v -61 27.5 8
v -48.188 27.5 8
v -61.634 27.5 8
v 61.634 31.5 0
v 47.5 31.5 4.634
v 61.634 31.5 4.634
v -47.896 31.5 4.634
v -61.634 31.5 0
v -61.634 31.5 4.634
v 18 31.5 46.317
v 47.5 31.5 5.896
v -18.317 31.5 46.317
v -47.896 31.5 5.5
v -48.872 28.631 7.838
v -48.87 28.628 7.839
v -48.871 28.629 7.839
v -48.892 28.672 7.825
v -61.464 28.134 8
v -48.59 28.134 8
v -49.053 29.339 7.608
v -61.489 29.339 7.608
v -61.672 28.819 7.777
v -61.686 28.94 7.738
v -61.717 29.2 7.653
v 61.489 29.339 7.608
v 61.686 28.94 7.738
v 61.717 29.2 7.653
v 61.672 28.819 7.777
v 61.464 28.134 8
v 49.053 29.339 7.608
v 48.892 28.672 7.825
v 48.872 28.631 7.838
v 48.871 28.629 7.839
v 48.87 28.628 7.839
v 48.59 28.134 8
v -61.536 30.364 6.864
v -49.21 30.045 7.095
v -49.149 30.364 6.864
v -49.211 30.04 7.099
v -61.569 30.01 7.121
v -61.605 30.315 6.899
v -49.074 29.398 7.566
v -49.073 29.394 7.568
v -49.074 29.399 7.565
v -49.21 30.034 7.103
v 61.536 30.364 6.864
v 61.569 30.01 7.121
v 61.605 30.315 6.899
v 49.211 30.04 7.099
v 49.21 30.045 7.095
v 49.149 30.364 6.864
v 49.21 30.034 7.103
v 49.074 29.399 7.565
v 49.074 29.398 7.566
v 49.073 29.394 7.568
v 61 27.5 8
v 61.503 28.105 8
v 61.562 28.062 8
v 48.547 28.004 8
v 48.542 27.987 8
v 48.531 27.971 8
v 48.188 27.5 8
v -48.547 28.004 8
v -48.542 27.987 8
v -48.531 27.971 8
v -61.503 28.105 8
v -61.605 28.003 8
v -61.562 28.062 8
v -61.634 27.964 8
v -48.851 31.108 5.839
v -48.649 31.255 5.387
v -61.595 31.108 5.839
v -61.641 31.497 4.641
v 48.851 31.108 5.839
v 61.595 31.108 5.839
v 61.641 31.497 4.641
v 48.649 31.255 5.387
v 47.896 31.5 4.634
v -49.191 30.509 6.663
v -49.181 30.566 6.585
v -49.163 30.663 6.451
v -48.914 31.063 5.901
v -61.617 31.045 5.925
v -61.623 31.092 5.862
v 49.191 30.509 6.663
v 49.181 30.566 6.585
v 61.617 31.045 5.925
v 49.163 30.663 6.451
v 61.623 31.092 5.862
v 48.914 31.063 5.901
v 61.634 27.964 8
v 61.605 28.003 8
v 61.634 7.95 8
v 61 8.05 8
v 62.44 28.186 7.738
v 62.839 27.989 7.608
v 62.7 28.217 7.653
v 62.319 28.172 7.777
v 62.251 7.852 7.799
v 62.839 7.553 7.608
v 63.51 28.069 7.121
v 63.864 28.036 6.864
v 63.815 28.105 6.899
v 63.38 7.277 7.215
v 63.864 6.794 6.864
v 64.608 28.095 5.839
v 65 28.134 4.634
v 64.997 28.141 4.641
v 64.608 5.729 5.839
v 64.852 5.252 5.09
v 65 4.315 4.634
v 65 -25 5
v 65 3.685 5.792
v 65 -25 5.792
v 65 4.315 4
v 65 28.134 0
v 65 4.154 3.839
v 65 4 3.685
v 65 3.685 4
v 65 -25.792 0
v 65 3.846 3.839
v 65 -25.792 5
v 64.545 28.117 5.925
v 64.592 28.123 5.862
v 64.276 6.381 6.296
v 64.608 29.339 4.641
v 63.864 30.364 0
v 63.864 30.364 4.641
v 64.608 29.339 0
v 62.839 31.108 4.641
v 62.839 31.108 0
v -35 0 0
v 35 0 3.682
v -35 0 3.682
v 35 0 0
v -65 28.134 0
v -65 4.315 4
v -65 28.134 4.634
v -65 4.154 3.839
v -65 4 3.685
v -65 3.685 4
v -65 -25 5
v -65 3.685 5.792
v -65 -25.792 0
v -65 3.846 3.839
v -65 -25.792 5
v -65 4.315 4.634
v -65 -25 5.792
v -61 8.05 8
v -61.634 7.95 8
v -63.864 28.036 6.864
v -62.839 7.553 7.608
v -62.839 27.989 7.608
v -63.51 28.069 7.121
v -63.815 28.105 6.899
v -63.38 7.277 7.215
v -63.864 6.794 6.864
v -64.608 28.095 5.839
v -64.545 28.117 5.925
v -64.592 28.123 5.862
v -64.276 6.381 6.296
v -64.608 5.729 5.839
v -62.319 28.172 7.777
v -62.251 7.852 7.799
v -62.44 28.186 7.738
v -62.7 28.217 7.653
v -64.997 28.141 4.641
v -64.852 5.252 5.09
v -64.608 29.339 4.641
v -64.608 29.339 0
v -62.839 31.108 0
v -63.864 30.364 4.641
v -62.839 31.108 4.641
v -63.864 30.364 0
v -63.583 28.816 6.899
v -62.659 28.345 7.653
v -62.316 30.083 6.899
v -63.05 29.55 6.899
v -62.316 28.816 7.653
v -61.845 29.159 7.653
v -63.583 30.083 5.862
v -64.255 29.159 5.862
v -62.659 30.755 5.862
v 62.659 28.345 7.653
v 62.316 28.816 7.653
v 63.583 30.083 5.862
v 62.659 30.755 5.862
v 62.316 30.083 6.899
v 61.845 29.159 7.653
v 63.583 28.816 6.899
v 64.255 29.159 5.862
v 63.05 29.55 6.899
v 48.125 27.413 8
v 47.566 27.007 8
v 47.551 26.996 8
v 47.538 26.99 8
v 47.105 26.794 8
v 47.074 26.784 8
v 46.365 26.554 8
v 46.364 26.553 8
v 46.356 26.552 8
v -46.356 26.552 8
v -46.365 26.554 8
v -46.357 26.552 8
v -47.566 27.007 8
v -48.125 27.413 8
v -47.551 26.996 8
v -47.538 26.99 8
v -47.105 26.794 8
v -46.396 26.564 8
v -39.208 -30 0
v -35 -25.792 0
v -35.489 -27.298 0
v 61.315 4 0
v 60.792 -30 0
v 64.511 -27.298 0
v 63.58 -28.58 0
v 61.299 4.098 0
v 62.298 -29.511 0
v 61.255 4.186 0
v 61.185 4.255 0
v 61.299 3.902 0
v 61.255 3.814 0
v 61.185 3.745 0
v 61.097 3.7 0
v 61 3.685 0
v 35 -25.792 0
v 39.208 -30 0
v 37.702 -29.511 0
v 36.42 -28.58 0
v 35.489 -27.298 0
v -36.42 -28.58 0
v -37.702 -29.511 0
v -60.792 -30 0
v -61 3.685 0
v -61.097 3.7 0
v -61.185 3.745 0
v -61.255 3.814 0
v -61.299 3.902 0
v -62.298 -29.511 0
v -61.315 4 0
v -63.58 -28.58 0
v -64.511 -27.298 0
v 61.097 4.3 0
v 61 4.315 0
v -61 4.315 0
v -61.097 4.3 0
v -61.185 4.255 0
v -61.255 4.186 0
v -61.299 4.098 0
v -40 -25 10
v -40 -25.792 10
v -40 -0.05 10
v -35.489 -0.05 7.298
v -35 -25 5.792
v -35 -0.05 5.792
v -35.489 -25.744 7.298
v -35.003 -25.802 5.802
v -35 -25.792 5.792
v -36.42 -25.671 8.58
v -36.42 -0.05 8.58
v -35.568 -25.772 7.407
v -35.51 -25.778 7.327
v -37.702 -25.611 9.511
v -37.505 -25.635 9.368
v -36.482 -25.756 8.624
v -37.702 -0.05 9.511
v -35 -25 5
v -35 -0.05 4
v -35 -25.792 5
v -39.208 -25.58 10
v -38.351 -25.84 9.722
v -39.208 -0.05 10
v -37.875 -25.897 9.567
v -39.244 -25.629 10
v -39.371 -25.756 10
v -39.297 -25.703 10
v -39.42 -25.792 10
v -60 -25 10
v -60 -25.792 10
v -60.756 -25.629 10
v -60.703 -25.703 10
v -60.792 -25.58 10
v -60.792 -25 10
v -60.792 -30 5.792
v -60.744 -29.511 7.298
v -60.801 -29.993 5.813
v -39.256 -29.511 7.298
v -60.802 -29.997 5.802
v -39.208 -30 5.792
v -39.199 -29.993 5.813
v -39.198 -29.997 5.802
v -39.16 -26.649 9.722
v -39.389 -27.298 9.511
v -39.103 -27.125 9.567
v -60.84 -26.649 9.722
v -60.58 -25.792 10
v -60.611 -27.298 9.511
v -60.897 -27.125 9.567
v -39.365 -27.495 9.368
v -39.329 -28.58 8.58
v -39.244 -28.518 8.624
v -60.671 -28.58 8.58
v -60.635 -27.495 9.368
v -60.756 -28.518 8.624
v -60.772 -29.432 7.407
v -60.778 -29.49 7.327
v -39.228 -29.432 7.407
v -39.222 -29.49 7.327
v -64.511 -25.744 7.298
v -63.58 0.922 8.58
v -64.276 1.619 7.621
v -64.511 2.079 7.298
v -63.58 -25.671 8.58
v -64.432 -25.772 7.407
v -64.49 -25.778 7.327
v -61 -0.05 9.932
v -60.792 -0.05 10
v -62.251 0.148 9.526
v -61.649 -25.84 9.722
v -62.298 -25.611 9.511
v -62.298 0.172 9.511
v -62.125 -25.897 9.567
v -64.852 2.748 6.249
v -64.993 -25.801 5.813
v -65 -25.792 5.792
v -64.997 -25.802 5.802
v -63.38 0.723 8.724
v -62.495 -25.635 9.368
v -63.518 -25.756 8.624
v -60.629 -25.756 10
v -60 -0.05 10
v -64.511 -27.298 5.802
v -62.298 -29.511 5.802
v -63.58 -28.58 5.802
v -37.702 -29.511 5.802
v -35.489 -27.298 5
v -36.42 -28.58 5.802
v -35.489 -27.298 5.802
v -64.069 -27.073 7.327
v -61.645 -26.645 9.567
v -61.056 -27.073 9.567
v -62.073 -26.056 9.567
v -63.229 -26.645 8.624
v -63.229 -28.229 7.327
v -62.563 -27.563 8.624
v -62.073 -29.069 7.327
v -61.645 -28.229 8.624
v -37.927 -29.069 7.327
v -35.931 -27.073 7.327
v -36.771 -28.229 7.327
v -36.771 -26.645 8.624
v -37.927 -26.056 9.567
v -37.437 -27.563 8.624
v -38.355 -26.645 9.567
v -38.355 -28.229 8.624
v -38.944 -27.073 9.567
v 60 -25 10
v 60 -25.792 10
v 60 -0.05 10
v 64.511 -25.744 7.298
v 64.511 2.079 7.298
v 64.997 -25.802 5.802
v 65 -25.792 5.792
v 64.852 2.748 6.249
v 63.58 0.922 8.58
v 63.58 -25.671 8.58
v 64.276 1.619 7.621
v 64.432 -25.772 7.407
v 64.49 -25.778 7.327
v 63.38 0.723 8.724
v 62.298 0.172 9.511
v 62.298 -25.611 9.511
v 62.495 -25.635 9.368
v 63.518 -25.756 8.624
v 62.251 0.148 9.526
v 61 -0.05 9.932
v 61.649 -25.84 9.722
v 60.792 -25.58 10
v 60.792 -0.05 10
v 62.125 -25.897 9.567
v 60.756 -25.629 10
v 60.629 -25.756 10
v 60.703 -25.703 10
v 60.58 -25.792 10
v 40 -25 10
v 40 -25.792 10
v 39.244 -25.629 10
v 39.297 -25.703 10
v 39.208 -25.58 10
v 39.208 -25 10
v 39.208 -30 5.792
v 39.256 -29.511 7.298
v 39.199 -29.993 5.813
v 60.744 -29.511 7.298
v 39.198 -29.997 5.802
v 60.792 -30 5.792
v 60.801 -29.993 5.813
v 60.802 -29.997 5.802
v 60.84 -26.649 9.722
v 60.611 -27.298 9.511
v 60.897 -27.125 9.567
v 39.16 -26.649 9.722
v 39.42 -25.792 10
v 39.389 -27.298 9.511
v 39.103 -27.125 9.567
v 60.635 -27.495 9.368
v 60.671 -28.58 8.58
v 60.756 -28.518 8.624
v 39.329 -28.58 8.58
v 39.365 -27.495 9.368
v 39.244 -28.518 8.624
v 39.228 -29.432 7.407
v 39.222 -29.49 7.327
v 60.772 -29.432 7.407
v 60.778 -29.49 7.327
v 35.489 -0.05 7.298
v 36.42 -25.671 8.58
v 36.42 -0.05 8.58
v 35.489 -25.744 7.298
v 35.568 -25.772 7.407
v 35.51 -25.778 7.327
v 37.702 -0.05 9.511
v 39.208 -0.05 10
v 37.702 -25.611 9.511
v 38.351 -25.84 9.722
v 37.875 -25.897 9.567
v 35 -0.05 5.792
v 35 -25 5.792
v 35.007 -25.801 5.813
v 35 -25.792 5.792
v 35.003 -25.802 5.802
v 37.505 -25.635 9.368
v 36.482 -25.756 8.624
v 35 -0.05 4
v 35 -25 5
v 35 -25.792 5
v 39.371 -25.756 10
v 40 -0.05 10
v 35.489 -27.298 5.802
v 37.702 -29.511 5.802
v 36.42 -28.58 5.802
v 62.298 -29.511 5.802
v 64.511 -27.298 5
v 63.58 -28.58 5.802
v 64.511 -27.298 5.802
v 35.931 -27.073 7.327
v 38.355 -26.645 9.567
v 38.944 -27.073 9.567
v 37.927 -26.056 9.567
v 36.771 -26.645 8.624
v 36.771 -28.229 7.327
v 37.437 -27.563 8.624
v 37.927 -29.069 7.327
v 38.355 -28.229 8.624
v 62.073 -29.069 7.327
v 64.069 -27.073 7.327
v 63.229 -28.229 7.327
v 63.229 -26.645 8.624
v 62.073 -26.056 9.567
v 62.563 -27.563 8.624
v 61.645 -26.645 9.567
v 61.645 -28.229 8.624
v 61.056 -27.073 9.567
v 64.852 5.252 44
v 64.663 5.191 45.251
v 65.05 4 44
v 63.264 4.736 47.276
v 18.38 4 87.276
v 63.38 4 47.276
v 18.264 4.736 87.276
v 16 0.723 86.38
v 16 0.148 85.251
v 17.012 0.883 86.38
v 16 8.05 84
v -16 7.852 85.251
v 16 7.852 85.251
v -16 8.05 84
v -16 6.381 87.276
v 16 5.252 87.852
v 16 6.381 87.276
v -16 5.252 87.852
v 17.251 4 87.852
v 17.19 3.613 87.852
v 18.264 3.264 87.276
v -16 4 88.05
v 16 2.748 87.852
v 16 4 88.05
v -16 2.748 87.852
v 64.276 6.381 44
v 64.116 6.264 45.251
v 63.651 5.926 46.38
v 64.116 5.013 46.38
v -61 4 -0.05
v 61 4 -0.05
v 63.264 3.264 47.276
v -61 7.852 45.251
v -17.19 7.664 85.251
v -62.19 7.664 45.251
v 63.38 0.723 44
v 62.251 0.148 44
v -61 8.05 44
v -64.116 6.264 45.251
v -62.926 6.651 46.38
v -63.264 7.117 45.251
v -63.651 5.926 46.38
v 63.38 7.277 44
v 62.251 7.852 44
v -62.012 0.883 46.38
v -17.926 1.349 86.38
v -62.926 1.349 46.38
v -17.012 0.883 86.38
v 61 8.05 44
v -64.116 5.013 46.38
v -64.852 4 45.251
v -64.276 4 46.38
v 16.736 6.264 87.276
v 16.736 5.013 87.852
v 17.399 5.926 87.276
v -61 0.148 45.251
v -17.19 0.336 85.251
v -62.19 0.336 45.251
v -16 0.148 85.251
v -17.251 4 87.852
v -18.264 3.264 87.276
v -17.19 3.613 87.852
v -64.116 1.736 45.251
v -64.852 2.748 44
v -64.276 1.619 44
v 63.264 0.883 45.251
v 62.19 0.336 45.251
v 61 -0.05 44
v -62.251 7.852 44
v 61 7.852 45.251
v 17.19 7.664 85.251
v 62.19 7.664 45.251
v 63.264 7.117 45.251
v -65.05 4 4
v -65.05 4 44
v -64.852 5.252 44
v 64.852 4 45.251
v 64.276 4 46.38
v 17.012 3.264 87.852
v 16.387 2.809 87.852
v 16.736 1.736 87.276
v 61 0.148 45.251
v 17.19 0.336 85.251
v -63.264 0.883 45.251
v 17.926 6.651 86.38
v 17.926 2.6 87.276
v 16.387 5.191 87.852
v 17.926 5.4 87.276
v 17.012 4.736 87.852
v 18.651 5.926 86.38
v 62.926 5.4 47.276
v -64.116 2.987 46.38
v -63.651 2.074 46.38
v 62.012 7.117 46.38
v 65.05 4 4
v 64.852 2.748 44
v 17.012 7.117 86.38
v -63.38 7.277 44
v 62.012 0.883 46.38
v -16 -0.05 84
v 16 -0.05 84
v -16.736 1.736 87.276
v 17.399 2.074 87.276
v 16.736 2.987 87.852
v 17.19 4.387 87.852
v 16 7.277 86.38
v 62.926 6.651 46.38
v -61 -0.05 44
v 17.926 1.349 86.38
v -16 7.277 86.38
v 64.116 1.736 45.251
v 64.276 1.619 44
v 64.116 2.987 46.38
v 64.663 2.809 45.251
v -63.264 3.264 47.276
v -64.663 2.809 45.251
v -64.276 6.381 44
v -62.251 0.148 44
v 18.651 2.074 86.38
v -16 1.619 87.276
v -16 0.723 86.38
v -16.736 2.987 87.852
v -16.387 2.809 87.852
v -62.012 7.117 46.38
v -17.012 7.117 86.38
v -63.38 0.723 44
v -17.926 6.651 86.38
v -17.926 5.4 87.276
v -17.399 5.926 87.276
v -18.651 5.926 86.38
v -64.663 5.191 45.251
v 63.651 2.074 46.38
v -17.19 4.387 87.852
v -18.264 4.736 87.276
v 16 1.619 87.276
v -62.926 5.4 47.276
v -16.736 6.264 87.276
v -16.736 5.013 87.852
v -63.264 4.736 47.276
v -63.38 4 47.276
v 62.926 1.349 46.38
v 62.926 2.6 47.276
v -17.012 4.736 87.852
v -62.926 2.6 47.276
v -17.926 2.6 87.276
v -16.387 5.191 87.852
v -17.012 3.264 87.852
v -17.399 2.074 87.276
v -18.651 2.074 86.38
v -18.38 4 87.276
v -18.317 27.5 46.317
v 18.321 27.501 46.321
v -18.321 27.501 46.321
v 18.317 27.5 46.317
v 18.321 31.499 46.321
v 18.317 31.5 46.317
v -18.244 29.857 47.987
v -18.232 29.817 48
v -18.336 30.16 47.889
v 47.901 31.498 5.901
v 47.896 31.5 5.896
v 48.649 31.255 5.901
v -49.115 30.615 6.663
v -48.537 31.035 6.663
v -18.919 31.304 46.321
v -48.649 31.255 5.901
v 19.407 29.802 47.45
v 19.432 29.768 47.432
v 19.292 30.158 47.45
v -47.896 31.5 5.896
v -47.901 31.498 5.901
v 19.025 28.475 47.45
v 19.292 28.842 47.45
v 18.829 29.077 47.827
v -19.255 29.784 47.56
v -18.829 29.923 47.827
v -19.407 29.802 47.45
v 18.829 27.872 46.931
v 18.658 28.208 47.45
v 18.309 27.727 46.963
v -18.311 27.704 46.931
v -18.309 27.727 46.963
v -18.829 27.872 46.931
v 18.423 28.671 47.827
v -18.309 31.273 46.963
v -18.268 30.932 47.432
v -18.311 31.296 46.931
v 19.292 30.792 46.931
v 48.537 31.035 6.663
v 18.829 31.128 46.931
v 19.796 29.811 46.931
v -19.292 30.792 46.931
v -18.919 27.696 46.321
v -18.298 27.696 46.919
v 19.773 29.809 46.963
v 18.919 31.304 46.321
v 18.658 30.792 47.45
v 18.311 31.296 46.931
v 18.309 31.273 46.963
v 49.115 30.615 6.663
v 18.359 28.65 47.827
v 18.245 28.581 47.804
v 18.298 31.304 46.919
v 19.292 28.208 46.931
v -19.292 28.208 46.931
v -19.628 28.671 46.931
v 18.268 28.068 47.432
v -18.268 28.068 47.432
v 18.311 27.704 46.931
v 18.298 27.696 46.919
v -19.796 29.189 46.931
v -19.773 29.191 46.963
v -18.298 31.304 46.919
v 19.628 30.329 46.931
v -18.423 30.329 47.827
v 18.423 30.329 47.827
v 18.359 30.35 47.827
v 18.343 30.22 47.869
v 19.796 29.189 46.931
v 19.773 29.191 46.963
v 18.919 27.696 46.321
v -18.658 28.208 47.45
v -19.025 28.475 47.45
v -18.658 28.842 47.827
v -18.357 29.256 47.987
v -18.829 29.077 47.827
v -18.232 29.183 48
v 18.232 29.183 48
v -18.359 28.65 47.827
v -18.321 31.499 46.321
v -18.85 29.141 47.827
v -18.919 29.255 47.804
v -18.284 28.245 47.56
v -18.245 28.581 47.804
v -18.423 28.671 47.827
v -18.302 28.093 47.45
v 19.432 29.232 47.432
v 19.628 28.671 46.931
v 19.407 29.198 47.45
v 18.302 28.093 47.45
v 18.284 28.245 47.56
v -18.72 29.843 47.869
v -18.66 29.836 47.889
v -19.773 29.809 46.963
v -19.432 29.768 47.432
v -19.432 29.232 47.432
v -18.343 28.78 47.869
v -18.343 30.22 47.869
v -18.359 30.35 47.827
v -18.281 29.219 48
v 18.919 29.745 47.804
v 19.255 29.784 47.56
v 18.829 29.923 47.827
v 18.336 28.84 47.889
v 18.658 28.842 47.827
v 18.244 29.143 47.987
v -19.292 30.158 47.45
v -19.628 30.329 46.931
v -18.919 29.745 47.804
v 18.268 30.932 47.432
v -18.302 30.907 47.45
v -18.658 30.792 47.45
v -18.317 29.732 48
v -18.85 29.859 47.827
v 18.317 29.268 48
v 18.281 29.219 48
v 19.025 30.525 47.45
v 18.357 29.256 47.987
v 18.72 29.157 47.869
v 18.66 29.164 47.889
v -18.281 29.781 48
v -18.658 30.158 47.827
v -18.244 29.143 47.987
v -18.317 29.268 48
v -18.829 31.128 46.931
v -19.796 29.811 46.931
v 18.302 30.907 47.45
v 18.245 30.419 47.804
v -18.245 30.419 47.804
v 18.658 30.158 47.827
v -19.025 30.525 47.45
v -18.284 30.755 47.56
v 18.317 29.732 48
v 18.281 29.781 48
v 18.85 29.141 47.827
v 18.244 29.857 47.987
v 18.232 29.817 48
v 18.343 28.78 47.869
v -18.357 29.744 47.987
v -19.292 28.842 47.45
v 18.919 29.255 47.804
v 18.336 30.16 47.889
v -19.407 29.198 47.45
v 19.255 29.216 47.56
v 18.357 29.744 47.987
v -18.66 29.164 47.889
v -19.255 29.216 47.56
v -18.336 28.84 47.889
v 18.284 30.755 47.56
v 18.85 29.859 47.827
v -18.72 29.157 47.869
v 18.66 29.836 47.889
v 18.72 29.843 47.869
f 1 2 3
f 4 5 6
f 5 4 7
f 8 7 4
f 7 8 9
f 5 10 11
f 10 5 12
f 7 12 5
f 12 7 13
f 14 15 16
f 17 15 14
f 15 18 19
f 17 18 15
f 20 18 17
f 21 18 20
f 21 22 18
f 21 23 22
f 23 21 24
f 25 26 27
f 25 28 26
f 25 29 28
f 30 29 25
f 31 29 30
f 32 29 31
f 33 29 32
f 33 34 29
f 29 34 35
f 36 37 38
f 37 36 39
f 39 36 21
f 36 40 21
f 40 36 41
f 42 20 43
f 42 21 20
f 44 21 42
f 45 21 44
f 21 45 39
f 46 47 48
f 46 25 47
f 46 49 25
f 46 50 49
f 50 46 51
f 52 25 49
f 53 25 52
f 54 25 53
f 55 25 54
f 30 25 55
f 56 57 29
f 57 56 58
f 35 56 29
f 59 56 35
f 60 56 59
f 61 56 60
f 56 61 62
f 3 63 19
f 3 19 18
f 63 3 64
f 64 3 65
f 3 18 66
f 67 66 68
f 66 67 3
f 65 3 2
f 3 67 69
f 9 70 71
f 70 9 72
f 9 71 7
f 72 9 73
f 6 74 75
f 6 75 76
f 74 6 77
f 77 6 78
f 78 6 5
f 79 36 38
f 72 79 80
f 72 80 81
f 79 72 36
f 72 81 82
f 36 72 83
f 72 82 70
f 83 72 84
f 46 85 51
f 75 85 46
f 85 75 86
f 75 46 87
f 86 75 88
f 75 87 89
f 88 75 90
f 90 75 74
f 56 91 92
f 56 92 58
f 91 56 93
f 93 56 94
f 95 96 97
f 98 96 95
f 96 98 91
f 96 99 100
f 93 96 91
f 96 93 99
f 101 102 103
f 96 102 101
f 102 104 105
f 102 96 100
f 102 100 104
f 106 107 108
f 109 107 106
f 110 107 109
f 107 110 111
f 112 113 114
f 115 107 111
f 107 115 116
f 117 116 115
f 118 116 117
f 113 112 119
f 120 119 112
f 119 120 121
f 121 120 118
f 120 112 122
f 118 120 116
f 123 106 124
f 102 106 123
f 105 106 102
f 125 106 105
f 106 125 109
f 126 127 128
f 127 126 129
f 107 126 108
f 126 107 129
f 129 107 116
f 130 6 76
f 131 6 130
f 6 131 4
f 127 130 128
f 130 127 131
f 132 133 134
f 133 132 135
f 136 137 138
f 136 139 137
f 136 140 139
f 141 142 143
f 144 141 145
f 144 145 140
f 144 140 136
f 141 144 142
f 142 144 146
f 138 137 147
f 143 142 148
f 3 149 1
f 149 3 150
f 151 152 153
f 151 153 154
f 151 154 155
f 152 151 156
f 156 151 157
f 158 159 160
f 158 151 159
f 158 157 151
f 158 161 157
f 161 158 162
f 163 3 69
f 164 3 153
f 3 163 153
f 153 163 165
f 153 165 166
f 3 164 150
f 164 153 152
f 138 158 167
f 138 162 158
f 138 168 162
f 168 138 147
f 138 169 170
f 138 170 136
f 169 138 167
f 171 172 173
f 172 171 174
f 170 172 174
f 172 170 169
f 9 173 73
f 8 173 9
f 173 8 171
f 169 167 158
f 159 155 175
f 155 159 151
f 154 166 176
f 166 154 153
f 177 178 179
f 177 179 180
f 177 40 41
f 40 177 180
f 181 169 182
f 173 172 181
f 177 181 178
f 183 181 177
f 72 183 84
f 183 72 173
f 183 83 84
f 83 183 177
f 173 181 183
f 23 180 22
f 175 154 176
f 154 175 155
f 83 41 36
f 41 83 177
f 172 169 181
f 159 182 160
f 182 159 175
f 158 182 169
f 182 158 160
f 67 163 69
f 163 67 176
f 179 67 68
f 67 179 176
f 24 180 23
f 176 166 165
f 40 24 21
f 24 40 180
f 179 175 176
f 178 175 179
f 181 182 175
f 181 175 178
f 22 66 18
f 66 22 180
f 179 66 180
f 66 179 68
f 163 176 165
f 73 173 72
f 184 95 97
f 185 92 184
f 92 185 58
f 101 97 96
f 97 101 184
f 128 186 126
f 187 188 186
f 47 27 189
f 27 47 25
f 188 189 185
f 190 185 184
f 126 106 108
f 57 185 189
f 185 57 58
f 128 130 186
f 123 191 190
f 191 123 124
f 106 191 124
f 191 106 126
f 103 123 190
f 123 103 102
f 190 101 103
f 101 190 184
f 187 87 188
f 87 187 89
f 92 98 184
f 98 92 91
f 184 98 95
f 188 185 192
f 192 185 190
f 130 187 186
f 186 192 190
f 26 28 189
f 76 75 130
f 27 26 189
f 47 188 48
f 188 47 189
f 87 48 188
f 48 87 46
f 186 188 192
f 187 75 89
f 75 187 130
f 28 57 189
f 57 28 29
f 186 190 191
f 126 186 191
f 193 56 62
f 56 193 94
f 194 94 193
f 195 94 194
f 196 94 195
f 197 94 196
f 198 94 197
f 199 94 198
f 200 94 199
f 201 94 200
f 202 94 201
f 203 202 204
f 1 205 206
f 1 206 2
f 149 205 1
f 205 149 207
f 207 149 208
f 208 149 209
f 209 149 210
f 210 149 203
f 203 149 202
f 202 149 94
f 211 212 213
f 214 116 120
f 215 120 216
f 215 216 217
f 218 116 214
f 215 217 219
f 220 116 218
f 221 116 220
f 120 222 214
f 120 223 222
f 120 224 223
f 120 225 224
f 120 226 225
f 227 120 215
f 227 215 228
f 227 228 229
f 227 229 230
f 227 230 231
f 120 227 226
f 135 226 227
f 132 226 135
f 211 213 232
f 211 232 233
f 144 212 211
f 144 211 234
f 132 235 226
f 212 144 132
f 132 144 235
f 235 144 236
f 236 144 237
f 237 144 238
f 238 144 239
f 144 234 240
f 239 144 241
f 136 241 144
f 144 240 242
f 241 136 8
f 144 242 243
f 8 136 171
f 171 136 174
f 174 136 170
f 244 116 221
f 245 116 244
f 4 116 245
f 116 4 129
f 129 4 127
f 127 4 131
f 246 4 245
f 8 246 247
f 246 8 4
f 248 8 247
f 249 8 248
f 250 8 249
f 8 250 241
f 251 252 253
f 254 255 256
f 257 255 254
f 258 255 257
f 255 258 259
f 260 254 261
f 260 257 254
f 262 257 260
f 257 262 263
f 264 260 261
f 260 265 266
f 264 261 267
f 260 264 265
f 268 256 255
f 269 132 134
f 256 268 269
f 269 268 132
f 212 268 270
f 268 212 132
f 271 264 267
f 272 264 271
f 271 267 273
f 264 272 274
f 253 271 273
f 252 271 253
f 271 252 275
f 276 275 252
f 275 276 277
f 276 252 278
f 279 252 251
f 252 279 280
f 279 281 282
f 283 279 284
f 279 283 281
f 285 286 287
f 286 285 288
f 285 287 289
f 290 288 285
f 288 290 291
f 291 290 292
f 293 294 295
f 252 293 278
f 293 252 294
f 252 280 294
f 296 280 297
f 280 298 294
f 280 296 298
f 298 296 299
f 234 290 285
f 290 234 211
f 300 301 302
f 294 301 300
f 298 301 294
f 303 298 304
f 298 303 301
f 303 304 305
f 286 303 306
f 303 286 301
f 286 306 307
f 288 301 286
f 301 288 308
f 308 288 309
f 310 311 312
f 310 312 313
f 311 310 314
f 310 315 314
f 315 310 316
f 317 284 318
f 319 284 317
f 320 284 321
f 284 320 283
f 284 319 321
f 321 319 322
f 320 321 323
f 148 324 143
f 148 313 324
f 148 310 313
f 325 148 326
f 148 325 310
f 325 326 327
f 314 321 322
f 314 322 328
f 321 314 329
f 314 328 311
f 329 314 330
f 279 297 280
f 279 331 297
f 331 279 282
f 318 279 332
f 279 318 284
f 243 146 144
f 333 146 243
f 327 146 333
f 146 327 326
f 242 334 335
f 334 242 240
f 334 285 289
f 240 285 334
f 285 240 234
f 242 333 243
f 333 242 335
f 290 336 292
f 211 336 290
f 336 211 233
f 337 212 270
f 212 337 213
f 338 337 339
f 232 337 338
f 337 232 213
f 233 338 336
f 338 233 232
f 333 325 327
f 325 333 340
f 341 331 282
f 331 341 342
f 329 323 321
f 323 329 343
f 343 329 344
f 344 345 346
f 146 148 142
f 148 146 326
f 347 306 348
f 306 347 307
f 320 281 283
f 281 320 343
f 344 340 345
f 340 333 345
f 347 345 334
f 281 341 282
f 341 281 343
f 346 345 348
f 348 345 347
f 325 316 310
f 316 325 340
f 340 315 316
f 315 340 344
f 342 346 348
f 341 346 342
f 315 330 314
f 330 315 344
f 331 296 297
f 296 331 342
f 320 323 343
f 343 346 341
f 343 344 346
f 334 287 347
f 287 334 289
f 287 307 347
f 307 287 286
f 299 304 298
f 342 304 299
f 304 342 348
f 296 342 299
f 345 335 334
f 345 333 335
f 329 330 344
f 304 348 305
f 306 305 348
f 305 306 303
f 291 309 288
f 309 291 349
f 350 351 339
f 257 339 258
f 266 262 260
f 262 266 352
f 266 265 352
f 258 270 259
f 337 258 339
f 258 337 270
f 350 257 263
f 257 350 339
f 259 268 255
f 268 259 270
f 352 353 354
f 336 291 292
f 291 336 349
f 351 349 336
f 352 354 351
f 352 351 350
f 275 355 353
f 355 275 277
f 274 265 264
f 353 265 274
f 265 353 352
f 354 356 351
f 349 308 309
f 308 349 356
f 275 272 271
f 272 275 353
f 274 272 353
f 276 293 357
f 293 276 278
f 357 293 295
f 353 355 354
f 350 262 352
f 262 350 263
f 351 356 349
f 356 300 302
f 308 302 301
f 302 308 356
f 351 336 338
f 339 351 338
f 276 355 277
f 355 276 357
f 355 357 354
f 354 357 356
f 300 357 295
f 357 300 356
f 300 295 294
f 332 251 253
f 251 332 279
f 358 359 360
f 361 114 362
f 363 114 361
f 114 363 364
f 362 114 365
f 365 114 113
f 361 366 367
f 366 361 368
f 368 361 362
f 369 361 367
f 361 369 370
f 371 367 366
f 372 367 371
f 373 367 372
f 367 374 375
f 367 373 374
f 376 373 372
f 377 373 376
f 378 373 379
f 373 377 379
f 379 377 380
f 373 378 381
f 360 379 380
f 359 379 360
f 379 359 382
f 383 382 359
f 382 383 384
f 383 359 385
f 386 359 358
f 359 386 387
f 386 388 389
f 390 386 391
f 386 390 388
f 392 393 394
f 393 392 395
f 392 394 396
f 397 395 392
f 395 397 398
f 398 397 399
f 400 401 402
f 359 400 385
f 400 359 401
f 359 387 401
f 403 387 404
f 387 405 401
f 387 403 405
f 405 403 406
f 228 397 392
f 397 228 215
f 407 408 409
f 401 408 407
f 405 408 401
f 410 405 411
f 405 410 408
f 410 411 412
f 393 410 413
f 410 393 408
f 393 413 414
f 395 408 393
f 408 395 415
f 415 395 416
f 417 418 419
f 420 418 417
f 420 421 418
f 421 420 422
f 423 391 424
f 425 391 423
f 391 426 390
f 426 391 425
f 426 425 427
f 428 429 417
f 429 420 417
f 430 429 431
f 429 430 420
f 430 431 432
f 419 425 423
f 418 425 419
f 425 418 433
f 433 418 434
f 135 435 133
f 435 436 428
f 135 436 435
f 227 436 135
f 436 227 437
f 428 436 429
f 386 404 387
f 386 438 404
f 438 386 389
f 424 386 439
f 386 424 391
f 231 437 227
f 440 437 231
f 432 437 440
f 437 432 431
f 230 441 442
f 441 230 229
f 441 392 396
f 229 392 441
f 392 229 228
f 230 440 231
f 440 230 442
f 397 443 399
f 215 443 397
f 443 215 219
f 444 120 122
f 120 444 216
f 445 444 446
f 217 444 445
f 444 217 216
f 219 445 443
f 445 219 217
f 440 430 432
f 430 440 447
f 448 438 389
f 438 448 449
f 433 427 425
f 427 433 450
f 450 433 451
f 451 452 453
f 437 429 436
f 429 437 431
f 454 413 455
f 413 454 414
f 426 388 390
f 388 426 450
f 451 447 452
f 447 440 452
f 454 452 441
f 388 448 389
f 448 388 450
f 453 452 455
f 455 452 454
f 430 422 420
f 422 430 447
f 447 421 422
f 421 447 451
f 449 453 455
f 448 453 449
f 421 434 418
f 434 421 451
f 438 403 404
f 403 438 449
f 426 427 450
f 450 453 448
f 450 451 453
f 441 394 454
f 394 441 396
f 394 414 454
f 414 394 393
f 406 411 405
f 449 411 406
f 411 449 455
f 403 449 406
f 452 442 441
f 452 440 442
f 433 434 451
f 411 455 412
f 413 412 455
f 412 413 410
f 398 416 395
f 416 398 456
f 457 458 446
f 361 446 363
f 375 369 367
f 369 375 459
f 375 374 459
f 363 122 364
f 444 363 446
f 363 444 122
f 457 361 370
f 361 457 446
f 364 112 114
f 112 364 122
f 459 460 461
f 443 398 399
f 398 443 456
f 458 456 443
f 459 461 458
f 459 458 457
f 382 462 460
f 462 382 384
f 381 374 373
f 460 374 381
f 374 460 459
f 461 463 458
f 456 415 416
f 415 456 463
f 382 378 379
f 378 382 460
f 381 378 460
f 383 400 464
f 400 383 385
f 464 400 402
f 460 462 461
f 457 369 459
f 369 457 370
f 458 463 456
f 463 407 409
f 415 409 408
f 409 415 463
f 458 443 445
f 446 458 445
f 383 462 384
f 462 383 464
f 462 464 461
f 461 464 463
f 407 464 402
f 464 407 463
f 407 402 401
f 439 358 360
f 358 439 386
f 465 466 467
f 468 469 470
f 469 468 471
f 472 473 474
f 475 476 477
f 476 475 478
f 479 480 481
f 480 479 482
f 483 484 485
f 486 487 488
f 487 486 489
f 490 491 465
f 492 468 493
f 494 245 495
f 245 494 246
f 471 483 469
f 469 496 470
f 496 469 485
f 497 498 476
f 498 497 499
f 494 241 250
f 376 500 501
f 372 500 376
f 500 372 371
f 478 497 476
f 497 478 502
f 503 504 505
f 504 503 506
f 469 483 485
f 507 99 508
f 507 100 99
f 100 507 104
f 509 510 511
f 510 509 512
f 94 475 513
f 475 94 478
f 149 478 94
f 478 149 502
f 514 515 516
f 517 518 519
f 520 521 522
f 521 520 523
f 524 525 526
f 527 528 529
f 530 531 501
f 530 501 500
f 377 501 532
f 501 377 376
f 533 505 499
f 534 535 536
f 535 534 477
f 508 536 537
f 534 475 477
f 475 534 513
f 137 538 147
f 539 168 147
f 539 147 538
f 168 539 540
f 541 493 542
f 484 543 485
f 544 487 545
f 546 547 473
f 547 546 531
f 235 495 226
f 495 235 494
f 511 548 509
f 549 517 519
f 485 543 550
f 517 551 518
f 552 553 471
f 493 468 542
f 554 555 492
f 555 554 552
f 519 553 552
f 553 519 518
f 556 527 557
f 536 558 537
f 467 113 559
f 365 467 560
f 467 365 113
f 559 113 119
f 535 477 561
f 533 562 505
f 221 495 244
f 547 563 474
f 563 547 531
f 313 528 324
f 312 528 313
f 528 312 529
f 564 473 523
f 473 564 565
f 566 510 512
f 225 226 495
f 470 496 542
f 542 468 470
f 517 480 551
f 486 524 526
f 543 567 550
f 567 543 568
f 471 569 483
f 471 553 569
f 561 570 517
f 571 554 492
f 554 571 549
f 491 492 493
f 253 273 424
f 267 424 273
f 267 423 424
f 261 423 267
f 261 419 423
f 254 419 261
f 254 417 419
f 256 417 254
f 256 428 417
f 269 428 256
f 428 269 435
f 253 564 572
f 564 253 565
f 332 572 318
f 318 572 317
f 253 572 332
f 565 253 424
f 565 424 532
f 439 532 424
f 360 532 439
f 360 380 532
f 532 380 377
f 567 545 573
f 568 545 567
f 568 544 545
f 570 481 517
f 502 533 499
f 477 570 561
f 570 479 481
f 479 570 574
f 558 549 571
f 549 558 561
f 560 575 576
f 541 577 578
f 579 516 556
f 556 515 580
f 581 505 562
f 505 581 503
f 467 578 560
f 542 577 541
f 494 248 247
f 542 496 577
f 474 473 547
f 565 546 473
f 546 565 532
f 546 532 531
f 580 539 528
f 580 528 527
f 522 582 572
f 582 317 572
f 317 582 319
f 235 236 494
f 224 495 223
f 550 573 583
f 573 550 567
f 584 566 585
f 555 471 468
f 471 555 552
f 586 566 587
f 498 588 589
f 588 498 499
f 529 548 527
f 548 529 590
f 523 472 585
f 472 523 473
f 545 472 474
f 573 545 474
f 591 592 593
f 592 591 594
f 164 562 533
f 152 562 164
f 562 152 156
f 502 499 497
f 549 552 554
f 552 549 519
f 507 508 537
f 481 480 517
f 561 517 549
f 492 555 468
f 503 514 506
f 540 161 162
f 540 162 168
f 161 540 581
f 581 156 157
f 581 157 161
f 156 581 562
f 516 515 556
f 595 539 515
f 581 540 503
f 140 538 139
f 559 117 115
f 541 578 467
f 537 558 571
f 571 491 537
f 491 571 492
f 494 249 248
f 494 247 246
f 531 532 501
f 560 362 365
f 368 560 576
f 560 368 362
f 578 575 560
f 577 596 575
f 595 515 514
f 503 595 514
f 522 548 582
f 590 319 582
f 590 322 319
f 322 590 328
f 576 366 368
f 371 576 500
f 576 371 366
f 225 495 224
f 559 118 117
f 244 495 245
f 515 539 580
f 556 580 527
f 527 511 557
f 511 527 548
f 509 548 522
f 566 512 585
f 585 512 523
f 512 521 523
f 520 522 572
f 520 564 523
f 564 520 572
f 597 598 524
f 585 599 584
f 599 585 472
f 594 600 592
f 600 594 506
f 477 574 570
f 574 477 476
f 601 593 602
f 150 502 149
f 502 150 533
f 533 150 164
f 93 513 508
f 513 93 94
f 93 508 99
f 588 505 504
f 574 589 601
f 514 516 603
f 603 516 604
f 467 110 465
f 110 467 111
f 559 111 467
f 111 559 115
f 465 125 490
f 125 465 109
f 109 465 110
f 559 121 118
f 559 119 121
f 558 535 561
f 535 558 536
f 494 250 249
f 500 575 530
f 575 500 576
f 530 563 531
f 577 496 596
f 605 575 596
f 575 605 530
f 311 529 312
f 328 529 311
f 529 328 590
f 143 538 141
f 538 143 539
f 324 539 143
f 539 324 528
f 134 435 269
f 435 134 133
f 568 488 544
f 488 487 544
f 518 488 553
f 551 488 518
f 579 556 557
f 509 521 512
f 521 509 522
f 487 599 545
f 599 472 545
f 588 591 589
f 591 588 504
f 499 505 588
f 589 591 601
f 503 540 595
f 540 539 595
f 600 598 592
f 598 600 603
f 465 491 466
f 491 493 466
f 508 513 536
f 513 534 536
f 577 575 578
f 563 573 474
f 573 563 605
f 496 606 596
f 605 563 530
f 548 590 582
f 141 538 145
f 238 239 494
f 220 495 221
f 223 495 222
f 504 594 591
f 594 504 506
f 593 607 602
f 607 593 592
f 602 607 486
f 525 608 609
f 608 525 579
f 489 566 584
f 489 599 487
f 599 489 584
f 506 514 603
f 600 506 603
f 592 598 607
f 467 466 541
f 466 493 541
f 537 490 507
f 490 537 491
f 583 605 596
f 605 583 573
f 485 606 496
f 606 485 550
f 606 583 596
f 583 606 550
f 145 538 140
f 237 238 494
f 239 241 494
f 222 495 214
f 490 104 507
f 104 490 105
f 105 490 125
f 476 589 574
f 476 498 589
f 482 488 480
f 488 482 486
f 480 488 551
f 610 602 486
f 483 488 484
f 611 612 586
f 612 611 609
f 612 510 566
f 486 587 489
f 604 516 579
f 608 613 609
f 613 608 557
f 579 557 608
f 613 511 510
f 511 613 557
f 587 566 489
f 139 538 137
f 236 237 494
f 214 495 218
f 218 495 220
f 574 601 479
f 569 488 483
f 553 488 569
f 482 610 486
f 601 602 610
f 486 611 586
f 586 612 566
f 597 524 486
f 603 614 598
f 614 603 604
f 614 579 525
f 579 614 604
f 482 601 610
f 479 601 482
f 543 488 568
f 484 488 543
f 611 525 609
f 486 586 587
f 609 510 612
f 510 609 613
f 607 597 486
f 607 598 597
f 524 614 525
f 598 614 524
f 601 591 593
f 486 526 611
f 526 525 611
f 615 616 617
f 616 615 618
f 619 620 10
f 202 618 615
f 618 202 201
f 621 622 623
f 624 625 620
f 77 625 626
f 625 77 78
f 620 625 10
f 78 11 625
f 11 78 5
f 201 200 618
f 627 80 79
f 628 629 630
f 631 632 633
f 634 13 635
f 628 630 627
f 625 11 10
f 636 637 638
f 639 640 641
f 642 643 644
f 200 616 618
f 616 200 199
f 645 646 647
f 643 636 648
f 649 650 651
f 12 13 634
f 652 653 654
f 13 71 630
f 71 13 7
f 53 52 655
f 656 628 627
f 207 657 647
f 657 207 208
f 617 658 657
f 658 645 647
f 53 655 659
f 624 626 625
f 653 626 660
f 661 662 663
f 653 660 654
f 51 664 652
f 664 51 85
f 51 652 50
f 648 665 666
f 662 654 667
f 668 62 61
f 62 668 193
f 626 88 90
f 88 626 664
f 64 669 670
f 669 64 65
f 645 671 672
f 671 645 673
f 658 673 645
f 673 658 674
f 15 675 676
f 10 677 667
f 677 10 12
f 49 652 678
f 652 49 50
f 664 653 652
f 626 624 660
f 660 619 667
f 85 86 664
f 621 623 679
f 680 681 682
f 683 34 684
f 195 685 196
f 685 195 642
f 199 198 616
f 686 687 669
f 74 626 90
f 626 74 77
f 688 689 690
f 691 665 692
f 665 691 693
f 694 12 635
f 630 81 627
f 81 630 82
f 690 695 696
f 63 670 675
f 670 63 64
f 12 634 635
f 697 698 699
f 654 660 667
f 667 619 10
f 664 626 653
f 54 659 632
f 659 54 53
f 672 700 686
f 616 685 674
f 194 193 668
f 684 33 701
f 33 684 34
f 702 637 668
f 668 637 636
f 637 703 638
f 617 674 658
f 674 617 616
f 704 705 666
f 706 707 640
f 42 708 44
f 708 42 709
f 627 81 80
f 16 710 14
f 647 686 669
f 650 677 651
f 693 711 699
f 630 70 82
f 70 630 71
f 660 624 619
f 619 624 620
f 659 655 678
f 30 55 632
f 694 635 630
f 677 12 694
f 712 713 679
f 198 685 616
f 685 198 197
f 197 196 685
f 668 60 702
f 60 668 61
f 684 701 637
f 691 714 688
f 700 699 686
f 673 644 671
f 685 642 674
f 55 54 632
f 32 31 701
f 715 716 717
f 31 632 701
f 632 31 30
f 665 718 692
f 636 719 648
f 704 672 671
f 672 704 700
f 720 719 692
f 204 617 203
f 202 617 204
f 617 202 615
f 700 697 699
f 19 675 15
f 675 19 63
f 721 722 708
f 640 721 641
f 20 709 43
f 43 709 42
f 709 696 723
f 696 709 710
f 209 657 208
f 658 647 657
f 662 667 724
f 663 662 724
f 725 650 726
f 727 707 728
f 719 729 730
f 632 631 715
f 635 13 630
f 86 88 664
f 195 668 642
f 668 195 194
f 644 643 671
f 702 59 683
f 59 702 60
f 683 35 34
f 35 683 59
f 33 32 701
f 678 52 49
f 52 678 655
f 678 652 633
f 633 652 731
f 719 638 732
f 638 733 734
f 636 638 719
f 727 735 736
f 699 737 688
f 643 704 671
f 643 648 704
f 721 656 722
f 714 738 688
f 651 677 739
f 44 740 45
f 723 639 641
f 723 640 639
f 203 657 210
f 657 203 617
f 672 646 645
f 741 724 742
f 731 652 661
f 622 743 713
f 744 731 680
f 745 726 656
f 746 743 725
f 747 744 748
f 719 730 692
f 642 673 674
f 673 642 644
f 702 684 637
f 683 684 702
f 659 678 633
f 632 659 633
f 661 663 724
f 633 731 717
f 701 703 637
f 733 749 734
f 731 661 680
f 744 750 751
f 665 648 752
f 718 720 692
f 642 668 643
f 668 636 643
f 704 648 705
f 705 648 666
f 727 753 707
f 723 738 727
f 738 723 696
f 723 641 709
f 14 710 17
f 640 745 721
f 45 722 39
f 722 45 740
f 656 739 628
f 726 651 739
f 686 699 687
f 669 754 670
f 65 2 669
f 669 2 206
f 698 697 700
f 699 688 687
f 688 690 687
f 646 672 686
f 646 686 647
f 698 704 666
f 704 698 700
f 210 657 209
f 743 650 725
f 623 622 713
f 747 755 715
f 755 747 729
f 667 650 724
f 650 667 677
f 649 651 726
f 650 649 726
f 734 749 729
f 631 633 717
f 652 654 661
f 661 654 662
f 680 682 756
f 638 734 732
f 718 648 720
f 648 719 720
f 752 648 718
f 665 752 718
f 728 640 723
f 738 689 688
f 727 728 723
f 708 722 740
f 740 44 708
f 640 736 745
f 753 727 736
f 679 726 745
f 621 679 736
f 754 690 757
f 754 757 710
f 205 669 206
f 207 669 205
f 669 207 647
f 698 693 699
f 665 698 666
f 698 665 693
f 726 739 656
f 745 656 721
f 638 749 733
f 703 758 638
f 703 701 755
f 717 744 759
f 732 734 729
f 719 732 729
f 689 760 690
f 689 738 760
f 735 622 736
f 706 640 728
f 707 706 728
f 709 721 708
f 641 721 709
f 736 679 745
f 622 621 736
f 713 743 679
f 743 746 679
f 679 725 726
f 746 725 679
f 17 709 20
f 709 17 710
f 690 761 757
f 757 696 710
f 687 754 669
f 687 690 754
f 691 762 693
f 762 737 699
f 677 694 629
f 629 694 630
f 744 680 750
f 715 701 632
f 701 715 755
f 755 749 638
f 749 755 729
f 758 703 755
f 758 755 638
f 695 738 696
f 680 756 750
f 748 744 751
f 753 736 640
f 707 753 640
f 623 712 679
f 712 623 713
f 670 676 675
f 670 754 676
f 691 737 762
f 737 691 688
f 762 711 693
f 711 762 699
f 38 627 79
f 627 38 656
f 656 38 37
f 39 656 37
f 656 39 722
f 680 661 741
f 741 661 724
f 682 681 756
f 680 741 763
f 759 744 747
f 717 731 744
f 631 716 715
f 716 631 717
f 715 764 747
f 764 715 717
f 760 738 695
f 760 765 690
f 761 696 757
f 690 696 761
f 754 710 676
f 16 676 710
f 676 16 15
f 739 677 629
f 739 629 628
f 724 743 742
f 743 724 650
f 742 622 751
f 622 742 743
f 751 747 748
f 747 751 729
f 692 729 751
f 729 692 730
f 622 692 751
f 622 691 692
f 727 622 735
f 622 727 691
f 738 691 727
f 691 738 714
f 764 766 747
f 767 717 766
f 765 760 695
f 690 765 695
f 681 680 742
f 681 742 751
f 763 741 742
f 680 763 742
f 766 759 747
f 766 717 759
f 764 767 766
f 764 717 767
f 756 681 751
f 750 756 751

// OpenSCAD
include <BOSL/constants.scad>
use <BOSL/shapes.scad>
use <BOSL/transforms.scad>

$fn=20;
EDGES_NO_BOT=EDGES_ALL-EDGES_BOTTOM;
V_TB=V_BACK+V_TOP;

w=8;

mac_height = 18.5; // including hardshell

base_width = w + mac_height + 5;



module leg() {
    w_leg=10;
    
    ymove(w/2) cuboid([30, 30+w/2, w_leg], align=V_FRONT+V_TOP, edges=EDGES_NO_BOT-EDGES_BACK, fillet=w_leg/2);
}

module wing() {
    w_bot=5;
    w_top=4;
    
    ymove(base_width-w_bot) hull() {
        ymove(w_bot-w_top) cuboid([40, w_top, 40+w], align=V_TB, edges=EDGES_NO_BOT, fillet=w_top/2);
        cuboid([100, w_bot, w], align=V_TB, edges=EDGES_NO_BOT, fillet=w_bot/2);
    }
}

union() {
    cuboid([130, base_width, w], align=V_TB, edges=EDGES_NO_BOT, fillet=w/2);
    hull() {
        cuboid([40, w, 80+w], align=V_TB, edges=EDGES_ALL, fillet=w/2);
        cuboid([130, w, 40+w], align=V_TB, edges=EDGES_ALL, fillet=w/2);
    }
    xmove(-50) leg();
    xmove(50) leg();
    wing();
}
